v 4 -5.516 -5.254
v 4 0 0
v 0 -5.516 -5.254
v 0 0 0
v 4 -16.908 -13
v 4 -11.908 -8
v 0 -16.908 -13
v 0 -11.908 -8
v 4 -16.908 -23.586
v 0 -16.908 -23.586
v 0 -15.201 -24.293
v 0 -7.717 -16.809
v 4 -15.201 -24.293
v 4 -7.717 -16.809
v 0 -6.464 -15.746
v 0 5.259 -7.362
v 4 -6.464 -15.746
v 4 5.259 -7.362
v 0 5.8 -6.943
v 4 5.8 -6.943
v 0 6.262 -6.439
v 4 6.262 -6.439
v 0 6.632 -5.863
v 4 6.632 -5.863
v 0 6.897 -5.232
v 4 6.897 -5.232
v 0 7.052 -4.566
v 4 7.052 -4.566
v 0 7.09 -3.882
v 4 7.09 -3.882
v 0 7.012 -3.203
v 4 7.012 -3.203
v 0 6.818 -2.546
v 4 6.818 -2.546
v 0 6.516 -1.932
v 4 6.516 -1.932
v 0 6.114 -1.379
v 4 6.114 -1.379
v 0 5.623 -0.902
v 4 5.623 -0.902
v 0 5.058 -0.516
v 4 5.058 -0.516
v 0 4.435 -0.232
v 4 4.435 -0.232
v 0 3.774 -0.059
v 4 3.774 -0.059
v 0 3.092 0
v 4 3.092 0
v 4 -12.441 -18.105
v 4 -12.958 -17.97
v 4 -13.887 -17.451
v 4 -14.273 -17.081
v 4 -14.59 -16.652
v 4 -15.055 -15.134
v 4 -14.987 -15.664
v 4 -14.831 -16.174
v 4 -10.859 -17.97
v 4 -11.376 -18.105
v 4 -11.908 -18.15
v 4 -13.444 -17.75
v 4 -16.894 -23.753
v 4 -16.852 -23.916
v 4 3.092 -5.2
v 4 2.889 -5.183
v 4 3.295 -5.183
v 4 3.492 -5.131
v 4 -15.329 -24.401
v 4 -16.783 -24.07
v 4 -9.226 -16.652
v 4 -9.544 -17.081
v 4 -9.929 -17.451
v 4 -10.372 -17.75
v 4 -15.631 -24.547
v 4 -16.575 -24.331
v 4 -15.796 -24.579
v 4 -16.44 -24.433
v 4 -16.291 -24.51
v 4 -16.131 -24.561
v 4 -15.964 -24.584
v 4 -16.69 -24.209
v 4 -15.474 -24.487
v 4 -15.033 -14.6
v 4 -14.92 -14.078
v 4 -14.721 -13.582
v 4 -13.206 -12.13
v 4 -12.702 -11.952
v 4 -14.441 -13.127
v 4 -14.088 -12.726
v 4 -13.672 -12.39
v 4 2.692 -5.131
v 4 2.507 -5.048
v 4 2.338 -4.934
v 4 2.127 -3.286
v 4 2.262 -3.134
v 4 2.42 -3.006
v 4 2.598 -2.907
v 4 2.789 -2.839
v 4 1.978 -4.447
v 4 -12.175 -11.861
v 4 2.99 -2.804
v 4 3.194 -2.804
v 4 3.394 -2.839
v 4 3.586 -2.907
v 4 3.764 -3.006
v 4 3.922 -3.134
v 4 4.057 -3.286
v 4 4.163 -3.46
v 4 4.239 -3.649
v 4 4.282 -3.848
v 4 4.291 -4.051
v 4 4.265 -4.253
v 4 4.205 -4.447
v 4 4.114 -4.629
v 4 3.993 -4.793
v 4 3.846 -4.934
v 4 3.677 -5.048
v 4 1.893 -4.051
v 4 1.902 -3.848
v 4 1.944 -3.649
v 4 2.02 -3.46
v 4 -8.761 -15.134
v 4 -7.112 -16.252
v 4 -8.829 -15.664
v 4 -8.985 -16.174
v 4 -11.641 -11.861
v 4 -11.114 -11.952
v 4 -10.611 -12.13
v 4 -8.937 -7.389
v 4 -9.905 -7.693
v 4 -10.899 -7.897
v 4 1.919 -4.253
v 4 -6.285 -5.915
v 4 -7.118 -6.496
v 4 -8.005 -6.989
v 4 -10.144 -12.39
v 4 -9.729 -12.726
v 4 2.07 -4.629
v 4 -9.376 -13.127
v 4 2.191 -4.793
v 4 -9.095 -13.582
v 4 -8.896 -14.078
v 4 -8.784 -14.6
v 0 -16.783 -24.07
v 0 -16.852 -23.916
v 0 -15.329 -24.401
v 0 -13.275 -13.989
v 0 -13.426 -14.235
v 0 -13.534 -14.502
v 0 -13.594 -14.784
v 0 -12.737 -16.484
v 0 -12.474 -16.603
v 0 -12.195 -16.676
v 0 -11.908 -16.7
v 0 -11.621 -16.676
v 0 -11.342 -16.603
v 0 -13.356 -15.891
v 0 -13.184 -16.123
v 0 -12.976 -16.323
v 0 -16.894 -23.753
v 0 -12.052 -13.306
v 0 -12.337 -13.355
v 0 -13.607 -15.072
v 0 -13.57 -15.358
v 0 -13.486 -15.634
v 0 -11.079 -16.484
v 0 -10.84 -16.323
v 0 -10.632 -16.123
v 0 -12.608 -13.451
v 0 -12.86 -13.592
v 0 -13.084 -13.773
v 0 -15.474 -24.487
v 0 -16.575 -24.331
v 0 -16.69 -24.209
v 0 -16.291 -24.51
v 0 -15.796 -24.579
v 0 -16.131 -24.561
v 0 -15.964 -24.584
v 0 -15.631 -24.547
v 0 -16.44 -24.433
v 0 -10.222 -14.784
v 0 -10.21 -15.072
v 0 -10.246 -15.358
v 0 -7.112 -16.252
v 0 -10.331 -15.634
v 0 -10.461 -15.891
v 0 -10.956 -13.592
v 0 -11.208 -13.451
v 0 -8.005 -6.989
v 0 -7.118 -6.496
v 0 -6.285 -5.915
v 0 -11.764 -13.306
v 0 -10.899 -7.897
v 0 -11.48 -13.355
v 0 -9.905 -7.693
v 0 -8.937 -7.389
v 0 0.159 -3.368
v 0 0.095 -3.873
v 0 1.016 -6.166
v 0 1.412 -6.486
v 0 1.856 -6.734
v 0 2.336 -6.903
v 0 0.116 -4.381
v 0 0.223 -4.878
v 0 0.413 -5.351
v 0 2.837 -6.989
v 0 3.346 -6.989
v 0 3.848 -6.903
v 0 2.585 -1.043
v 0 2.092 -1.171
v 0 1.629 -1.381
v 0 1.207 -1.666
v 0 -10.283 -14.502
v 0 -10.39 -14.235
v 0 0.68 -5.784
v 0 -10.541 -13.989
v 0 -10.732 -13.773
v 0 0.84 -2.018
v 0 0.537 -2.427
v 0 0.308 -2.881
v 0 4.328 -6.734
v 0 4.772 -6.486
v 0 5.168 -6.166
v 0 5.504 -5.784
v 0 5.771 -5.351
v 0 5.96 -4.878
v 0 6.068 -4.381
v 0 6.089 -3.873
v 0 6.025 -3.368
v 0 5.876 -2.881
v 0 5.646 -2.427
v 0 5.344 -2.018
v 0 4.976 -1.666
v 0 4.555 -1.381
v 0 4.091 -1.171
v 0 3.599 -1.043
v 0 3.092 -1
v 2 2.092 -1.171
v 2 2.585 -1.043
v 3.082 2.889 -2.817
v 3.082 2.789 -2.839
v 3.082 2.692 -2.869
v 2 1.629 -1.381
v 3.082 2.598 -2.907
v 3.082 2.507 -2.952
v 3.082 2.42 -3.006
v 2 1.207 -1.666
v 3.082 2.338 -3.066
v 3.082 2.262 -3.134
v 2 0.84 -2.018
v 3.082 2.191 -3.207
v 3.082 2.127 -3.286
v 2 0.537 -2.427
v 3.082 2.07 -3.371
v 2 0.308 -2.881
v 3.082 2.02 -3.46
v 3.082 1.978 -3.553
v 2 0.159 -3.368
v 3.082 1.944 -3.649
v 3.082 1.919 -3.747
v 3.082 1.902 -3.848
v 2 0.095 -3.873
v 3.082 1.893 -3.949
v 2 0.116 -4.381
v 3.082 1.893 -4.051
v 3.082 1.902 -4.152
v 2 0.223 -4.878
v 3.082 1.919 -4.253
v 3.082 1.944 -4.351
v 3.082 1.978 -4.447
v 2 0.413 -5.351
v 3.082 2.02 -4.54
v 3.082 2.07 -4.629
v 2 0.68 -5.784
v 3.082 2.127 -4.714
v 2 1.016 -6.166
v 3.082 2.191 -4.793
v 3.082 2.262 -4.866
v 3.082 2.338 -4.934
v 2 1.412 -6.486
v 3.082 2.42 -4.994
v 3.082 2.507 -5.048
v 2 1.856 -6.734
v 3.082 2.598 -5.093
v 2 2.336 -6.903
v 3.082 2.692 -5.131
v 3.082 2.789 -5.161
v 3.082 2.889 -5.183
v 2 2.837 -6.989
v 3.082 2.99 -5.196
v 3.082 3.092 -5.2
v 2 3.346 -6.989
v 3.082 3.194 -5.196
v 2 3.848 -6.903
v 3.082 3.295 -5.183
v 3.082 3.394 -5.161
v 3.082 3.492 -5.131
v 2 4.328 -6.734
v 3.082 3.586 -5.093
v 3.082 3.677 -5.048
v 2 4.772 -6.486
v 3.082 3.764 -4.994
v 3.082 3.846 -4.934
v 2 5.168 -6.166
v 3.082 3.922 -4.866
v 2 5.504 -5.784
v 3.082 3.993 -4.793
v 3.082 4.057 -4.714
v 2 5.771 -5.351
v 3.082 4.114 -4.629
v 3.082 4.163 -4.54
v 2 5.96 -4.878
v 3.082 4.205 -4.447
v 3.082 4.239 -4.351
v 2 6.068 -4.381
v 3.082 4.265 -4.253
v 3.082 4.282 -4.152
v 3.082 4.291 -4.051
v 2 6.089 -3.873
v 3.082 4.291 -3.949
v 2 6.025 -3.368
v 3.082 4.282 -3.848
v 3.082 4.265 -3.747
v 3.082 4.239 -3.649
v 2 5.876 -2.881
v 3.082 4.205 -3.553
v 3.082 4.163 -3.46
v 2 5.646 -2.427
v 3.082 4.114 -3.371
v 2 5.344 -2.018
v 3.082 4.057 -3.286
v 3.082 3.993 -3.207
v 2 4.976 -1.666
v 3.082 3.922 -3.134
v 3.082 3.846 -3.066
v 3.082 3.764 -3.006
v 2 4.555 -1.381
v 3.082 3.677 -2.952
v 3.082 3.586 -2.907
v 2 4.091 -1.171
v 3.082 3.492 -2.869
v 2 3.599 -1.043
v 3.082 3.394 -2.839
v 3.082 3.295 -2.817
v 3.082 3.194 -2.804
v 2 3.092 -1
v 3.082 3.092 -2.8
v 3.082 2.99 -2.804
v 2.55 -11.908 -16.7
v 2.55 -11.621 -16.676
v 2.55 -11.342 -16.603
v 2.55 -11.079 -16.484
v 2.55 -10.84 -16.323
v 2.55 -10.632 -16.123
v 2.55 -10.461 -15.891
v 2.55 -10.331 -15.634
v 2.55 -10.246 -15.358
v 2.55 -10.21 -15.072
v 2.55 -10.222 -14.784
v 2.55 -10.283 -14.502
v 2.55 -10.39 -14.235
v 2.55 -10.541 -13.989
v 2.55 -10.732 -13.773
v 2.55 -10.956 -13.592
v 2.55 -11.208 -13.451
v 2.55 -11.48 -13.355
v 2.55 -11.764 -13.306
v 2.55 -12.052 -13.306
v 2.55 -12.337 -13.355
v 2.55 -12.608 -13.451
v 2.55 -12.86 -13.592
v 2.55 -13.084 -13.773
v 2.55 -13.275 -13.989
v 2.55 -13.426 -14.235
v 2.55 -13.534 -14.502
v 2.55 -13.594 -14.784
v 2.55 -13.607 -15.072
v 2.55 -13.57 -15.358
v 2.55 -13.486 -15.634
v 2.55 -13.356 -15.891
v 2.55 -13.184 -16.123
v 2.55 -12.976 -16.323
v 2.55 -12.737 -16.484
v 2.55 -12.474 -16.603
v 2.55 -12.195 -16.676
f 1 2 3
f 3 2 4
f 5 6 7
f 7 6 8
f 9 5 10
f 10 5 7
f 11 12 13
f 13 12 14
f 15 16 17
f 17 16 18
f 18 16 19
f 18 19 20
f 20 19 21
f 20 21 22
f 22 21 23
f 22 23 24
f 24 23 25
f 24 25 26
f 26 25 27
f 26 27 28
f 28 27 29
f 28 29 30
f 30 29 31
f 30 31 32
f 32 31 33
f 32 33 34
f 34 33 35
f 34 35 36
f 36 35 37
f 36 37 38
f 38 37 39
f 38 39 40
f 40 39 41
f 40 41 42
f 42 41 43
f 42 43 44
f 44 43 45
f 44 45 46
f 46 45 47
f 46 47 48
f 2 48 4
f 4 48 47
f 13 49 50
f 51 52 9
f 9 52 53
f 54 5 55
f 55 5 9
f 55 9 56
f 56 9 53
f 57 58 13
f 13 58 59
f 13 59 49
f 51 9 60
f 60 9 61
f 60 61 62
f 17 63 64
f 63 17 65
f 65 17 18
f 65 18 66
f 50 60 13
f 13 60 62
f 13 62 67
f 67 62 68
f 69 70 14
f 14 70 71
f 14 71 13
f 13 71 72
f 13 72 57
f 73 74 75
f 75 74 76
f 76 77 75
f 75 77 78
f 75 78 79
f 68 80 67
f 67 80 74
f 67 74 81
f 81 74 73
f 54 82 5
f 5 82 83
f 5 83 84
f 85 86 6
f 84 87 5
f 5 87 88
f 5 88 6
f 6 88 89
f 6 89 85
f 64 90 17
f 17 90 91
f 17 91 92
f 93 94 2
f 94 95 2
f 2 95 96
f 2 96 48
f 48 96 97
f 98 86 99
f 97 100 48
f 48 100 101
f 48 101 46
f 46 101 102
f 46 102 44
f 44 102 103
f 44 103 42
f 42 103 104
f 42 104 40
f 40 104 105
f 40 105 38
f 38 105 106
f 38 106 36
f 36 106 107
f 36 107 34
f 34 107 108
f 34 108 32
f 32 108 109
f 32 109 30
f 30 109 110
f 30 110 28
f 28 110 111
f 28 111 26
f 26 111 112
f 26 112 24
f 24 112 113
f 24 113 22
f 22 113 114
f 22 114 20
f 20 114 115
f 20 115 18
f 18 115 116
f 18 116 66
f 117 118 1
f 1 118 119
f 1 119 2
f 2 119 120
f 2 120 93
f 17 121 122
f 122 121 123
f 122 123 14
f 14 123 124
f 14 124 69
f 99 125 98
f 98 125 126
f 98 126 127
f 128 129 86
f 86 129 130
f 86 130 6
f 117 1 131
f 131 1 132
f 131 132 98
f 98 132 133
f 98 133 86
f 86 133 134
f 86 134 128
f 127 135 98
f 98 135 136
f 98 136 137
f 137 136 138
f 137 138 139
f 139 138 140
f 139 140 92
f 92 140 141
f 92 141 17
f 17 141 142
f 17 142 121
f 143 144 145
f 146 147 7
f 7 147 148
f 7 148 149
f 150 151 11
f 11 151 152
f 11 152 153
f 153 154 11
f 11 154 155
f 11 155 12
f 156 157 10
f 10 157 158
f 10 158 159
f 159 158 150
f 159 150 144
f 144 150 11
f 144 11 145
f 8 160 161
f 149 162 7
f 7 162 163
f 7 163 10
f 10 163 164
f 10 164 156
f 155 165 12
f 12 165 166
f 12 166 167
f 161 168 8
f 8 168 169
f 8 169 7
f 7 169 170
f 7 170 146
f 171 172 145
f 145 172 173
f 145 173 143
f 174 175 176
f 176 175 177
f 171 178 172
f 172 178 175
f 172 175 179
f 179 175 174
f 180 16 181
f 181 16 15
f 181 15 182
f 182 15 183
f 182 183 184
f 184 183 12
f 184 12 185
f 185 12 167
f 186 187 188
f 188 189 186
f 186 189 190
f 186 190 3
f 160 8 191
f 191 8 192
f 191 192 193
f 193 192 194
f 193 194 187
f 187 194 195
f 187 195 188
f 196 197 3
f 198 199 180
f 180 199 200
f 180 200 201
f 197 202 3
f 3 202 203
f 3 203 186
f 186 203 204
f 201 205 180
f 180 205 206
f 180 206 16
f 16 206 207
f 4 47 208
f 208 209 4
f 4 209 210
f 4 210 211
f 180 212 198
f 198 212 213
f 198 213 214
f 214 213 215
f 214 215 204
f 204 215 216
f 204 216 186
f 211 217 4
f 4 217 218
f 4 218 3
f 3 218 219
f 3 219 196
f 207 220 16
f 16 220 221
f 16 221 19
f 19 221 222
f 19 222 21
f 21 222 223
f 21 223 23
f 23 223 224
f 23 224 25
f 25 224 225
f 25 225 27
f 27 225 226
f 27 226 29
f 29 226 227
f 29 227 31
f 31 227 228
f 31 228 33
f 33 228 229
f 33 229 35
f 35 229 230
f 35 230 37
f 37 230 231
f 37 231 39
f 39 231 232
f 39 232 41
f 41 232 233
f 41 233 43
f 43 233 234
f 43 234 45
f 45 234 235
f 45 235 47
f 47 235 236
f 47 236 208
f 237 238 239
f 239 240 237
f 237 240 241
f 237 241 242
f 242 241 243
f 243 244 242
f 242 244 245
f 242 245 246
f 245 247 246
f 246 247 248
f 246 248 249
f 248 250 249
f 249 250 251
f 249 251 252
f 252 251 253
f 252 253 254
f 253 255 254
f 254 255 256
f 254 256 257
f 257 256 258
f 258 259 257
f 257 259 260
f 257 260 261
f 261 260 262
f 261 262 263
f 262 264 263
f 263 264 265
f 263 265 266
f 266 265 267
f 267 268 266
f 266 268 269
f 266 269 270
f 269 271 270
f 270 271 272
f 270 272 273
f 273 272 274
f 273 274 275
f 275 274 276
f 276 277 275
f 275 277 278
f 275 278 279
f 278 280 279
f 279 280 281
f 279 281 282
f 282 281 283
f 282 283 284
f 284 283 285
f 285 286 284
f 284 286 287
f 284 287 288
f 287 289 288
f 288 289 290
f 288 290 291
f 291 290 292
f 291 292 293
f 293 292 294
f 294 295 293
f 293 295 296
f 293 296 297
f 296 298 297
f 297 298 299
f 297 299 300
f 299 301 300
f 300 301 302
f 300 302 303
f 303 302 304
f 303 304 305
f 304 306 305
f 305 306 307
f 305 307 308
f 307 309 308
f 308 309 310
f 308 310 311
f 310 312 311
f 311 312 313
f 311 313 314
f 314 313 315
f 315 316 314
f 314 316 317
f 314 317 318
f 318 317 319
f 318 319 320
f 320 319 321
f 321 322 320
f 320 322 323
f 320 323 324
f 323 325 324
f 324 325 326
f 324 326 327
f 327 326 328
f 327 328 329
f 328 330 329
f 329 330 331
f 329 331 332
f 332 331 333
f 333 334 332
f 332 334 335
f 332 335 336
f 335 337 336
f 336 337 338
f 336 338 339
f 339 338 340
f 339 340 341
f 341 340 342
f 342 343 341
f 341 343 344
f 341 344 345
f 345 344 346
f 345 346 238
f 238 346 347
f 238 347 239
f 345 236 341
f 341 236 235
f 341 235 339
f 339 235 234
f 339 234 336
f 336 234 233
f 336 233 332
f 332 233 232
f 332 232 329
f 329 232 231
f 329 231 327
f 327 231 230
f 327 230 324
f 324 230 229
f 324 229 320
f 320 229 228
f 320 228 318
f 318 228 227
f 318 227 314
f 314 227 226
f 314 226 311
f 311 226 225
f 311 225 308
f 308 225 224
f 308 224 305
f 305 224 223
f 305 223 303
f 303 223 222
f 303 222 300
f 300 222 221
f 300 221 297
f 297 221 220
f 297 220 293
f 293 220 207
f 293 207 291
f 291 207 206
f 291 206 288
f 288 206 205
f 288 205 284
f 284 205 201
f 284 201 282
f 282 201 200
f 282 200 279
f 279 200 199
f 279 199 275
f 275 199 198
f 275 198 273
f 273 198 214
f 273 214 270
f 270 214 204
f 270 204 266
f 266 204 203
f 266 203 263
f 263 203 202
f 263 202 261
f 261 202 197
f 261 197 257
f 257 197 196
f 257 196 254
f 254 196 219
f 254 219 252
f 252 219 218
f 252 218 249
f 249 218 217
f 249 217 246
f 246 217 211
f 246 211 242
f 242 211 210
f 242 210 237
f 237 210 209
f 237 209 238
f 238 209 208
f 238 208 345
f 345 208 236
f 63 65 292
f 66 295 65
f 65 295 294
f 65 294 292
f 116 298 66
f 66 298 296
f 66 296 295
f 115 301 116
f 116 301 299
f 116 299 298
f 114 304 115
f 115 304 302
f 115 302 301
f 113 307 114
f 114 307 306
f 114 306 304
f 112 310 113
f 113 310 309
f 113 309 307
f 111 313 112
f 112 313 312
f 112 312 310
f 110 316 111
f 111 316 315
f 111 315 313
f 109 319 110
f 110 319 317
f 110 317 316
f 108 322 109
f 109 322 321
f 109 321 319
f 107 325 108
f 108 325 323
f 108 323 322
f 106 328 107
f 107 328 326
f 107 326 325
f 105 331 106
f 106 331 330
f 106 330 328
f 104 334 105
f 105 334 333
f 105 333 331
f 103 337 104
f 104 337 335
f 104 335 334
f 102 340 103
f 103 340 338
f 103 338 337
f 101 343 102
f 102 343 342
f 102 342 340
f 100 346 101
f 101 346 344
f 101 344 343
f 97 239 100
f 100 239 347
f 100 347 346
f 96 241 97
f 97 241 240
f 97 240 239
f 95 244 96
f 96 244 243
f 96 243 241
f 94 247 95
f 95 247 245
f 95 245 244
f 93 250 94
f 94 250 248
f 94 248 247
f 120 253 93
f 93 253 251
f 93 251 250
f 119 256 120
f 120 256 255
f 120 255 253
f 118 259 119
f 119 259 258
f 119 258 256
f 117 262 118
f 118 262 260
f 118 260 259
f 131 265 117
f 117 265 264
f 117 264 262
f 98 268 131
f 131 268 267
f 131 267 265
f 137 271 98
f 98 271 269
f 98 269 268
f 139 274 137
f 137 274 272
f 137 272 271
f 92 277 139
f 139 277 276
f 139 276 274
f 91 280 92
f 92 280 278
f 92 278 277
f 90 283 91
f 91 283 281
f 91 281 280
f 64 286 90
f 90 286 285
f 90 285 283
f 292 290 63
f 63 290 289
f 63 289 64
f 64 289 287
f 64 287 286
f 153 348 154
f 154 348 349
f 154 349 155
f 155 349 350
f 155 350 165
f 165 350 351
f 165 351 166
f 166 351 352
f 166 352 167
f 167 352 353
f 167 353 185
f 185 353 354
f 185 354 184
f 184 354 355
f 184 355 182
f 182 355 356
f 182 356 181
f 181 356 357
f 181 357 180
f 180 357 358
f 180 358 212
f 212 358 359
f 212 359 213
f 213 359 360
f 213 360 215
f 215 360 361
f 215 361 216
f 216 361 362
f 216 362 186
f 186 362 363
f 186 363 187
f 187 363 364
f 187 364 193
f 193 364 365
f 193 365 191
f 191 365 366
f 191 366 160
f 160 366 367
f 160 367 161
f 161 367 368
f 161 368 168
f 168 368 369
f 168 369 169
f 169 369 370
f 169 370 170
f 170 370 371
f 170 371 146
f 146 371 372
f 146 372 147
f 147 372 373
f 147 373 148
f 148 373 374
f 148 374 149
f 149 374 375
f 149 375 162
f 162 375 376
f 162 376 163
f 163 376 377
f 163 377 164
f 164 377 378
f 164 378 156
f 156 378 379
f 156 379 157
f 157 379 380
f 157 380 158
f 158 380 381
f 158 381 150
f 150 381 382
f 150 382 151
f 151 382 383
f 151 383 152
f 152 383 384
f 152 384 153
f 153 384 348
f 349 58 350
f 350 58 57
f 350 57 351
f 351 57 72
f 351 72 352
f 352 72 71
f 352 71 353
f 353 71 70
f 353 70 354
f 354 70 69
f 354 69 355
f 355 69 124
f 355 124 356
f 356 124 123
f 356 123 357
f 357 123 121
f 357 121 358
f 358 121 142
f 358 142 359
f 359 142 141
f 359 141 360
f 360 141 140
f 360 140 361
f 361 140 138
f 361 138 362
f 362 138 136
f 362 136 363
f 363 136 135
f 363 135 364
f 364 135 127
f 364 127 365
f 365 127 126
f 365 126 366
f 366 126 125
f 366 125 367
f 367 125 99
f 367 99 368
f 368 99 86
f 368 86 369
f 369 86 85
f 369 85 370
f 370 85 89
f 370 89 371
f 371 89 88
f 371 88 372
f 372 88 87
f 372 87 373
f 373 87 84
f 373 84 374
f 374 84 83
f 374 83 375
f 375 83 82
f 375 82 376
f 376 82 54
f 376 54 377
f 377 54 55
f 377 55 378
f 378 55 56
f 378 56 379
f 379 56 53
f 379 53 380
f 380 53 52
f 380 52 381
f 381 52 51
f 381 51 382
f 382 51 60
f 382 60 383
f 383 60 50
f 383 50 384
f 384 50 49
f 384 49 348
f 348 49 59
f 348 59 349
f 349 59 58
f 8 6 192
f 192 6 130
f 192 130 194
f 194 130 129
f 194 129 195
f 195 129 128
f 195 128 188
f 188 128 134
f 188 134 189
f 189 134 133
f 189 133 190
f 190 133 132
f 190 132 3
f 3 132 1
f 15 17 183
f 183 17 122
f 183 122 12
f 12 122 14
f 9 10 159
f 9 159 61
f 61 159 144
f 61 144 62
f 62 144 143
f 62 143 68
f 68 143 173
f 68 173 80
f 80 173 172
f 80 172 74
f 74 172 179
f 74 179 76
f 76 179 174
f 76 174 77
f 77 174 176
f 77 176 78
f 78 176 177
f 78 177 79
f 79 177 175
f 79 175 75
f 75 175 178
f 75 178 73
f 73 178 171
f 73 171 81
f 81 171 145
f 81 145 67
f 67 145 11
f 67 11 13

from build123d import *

# Parameters (mm, degrees)
RESSALTO_EXTRUS_O1_DEPTH                             = 4
FURO_DE_DI_METRO_6_0_6_1_D                           = 6
FURO_DE_DI_METRO_6_0_6_1_DEPTH                       = 2
FURO_DE_DI_METRO_6_0_6_1_TIP                         = 1.802581857
ESBO_O4_R                                            = 1.2
CORTE_EXTRUS_O1_DEPTH                                = 32.271167096
ESCAREADO_PARA_PARAFUSO_COM_CABE_A_ESCAR_D           = 3.4
ESCAREADO_PARA_PARAFUSO_COM_CABE_A_ESCAR_CSINK_D     = 6.3
ESCAREADO_PARA_PARAFUSO_COM_CABE_A_ESCAR_CSINK_ANGLE = 90
FILETE1_R                                            = 10
FILETE2_R                                            = 1


with BuildPart() as part:
    # Esboço1 → Ressalto-extrusão1 (new body)
    with BuildSketch(Plane(origin=(0, 0, 0), x_dir=(0, 0, -1), z_dir=(1, 0, 0))):
        with BuildLine():
            Line((0, 0), (0, 3.091839499))
            ThreePointArc((0, 3.091839499), (2.870368785, 6.92901728), (7.361966659, 5.259137398))
            Line((7.361966659, 5.259137398), (16.225984495, -7.134144996))
            Line((16.225984495, -7.134144996), (26, -16.908160501))
            Line((26, -16.908160501), (13, -16.908160501))
            Line((13, -16.908160501), (8, -11.908160501))
            Line((8, -11.908160501), (8, -8.399335203))
            Line((8, -8.399335203), (0, 0))
        make_face()
    extrude(amount=RESSALTO_EXTRUS_O1_DEPTH)

    # Furo de diâmetro Ø6.0 (6)1
    with Locations(Plane.ZY):
        with Locations((-4, 3.091839499)):
            Hole(FURO_DE_DI_METRO_6_0_6_1_D / 2, depth=FURO_DE_DI_METRO_6_0_6_1_DEPTH)
            with Locations((0, 0, -(FURO_DE_DI_METRO_6_0_6_1_DEPTH + FURO_DE_DI_METRO_6_0_6_1_TIP / 2))):  # 118° drill point
                Cone(0, FURO_DE_DI_METRO_6_0_6_1_D / 2, FURO_DE_DI_METRO_6_0_6_1_TIP, mode=Mode.SUBTRACT)

    # Esboço4 → Corte-extrusão1 (cut, through all)
    with BuildSketch(Plane(origin=(4, 0, 0), x_dir=(0, 0, -1), z_dir=(1, 0, 0))):
        with Locations((4, 3.091839499)):
            Circle(ESBO_O4_R)
    extrude(amount=-CORTE_EXTRUS_O1_DEPTH, mode=Mode.SUBTRACT)

    # Escareado para parafuso com cabeça escareada chata de M31 (through all)
    with Locations(Plane(origin=(4, 0, 0), x_dir=(0, 0, -1), z_dir=(1, 0, 0))):
        with Locations((15, -11.908160501)):
            CounterSinkHole(ESCAREADO_PARA_PARAFUSO_COM_CABE_A_ESCAR_D / 2, ESCAREADO_PARA_PARAFUSO_COM_CABE_A_ESCAR_CSINK_D / 2, counter_sink_angle=ESCAREADO_PARA_PARAFUSO_COM_CABE_A_ESCAR_CSINK_ANGLE)

    # Filete1
    # the kernel refuses this fillet: 10 mm, written as the material it adds along each edge
    with BuildSketch(Plane(origin=(0, -8.399335203, -8), x_dir=(0, 0.724110671276106, 0.6896837940274276), z_dir=(1, 0, 0))) as filete1_piece_1:
        with BuildLine():
            CenterArc((3.981744366, 10), FILETE1_R, 229.288374317, 40.711625683)
            Line((-2.540777842, 2.419979944), (-2.671228286, 2.268379543))
            ThreePointArc((-2.671228286, 2.268379543), (-1.40832568, 1.065167838), (-0.137936759, -0.144822134))
            Line((-0.137936759, -0.144822134), (0, -0.2))
            Line((0, -0.2), (3.981744366, -0.2))
            Line((3.981744366, -0.2), (3.981744366, 0))
        make_face()
    extrude(amount=4)
    with BuildSketch(Plane(origin=(0, -7.134144996, -16.225984495), x_dir=(0, -0.7071067811865512, -0.7071067811865437), z_dir=(1, 0, 0))) as filete1_piece_2:
        with BuildLine():
            CenterArc((FILETE1_R * 0.0824486959728, FILETE1_R), FILETE1_R, 260.573396821, 9.426603179)
            Line((-FILETE1_R * 0.0813353269941, FILETE1_R * 0.0135037791148), (-FILETE1_R * 0.0846110074534, -FILETE1_R * 0.00622614530291))
            Line((-FILETE1_R * 0.0846110074534, -FILETE1_R * 0.00622614530291), (-FILETE1_R * 0.00164897391946, -FILETE1_R * 0.02))
            Line((-FILETE1_R * 0.00164897391946, -FILETE1_R * 0.02), (FILETE1_R * 0.0824486959728, -FILETE1_R * 0.02))
            Line((FILETE1_R * 0.0824486959728, -FILETE1_R * 0.02), (FILETE1_R * 0.0824486959728, 0))
        make_face()
    extrude(amount=4)

    # Filete2
    filete2_edges = [part.edges().sort_by_distance(p)[0] for p in [
        (2, -16.908160501, -26),
    ]]
    fillet(filete2_edges, radius=FILETE2_R)


solid = part.part
